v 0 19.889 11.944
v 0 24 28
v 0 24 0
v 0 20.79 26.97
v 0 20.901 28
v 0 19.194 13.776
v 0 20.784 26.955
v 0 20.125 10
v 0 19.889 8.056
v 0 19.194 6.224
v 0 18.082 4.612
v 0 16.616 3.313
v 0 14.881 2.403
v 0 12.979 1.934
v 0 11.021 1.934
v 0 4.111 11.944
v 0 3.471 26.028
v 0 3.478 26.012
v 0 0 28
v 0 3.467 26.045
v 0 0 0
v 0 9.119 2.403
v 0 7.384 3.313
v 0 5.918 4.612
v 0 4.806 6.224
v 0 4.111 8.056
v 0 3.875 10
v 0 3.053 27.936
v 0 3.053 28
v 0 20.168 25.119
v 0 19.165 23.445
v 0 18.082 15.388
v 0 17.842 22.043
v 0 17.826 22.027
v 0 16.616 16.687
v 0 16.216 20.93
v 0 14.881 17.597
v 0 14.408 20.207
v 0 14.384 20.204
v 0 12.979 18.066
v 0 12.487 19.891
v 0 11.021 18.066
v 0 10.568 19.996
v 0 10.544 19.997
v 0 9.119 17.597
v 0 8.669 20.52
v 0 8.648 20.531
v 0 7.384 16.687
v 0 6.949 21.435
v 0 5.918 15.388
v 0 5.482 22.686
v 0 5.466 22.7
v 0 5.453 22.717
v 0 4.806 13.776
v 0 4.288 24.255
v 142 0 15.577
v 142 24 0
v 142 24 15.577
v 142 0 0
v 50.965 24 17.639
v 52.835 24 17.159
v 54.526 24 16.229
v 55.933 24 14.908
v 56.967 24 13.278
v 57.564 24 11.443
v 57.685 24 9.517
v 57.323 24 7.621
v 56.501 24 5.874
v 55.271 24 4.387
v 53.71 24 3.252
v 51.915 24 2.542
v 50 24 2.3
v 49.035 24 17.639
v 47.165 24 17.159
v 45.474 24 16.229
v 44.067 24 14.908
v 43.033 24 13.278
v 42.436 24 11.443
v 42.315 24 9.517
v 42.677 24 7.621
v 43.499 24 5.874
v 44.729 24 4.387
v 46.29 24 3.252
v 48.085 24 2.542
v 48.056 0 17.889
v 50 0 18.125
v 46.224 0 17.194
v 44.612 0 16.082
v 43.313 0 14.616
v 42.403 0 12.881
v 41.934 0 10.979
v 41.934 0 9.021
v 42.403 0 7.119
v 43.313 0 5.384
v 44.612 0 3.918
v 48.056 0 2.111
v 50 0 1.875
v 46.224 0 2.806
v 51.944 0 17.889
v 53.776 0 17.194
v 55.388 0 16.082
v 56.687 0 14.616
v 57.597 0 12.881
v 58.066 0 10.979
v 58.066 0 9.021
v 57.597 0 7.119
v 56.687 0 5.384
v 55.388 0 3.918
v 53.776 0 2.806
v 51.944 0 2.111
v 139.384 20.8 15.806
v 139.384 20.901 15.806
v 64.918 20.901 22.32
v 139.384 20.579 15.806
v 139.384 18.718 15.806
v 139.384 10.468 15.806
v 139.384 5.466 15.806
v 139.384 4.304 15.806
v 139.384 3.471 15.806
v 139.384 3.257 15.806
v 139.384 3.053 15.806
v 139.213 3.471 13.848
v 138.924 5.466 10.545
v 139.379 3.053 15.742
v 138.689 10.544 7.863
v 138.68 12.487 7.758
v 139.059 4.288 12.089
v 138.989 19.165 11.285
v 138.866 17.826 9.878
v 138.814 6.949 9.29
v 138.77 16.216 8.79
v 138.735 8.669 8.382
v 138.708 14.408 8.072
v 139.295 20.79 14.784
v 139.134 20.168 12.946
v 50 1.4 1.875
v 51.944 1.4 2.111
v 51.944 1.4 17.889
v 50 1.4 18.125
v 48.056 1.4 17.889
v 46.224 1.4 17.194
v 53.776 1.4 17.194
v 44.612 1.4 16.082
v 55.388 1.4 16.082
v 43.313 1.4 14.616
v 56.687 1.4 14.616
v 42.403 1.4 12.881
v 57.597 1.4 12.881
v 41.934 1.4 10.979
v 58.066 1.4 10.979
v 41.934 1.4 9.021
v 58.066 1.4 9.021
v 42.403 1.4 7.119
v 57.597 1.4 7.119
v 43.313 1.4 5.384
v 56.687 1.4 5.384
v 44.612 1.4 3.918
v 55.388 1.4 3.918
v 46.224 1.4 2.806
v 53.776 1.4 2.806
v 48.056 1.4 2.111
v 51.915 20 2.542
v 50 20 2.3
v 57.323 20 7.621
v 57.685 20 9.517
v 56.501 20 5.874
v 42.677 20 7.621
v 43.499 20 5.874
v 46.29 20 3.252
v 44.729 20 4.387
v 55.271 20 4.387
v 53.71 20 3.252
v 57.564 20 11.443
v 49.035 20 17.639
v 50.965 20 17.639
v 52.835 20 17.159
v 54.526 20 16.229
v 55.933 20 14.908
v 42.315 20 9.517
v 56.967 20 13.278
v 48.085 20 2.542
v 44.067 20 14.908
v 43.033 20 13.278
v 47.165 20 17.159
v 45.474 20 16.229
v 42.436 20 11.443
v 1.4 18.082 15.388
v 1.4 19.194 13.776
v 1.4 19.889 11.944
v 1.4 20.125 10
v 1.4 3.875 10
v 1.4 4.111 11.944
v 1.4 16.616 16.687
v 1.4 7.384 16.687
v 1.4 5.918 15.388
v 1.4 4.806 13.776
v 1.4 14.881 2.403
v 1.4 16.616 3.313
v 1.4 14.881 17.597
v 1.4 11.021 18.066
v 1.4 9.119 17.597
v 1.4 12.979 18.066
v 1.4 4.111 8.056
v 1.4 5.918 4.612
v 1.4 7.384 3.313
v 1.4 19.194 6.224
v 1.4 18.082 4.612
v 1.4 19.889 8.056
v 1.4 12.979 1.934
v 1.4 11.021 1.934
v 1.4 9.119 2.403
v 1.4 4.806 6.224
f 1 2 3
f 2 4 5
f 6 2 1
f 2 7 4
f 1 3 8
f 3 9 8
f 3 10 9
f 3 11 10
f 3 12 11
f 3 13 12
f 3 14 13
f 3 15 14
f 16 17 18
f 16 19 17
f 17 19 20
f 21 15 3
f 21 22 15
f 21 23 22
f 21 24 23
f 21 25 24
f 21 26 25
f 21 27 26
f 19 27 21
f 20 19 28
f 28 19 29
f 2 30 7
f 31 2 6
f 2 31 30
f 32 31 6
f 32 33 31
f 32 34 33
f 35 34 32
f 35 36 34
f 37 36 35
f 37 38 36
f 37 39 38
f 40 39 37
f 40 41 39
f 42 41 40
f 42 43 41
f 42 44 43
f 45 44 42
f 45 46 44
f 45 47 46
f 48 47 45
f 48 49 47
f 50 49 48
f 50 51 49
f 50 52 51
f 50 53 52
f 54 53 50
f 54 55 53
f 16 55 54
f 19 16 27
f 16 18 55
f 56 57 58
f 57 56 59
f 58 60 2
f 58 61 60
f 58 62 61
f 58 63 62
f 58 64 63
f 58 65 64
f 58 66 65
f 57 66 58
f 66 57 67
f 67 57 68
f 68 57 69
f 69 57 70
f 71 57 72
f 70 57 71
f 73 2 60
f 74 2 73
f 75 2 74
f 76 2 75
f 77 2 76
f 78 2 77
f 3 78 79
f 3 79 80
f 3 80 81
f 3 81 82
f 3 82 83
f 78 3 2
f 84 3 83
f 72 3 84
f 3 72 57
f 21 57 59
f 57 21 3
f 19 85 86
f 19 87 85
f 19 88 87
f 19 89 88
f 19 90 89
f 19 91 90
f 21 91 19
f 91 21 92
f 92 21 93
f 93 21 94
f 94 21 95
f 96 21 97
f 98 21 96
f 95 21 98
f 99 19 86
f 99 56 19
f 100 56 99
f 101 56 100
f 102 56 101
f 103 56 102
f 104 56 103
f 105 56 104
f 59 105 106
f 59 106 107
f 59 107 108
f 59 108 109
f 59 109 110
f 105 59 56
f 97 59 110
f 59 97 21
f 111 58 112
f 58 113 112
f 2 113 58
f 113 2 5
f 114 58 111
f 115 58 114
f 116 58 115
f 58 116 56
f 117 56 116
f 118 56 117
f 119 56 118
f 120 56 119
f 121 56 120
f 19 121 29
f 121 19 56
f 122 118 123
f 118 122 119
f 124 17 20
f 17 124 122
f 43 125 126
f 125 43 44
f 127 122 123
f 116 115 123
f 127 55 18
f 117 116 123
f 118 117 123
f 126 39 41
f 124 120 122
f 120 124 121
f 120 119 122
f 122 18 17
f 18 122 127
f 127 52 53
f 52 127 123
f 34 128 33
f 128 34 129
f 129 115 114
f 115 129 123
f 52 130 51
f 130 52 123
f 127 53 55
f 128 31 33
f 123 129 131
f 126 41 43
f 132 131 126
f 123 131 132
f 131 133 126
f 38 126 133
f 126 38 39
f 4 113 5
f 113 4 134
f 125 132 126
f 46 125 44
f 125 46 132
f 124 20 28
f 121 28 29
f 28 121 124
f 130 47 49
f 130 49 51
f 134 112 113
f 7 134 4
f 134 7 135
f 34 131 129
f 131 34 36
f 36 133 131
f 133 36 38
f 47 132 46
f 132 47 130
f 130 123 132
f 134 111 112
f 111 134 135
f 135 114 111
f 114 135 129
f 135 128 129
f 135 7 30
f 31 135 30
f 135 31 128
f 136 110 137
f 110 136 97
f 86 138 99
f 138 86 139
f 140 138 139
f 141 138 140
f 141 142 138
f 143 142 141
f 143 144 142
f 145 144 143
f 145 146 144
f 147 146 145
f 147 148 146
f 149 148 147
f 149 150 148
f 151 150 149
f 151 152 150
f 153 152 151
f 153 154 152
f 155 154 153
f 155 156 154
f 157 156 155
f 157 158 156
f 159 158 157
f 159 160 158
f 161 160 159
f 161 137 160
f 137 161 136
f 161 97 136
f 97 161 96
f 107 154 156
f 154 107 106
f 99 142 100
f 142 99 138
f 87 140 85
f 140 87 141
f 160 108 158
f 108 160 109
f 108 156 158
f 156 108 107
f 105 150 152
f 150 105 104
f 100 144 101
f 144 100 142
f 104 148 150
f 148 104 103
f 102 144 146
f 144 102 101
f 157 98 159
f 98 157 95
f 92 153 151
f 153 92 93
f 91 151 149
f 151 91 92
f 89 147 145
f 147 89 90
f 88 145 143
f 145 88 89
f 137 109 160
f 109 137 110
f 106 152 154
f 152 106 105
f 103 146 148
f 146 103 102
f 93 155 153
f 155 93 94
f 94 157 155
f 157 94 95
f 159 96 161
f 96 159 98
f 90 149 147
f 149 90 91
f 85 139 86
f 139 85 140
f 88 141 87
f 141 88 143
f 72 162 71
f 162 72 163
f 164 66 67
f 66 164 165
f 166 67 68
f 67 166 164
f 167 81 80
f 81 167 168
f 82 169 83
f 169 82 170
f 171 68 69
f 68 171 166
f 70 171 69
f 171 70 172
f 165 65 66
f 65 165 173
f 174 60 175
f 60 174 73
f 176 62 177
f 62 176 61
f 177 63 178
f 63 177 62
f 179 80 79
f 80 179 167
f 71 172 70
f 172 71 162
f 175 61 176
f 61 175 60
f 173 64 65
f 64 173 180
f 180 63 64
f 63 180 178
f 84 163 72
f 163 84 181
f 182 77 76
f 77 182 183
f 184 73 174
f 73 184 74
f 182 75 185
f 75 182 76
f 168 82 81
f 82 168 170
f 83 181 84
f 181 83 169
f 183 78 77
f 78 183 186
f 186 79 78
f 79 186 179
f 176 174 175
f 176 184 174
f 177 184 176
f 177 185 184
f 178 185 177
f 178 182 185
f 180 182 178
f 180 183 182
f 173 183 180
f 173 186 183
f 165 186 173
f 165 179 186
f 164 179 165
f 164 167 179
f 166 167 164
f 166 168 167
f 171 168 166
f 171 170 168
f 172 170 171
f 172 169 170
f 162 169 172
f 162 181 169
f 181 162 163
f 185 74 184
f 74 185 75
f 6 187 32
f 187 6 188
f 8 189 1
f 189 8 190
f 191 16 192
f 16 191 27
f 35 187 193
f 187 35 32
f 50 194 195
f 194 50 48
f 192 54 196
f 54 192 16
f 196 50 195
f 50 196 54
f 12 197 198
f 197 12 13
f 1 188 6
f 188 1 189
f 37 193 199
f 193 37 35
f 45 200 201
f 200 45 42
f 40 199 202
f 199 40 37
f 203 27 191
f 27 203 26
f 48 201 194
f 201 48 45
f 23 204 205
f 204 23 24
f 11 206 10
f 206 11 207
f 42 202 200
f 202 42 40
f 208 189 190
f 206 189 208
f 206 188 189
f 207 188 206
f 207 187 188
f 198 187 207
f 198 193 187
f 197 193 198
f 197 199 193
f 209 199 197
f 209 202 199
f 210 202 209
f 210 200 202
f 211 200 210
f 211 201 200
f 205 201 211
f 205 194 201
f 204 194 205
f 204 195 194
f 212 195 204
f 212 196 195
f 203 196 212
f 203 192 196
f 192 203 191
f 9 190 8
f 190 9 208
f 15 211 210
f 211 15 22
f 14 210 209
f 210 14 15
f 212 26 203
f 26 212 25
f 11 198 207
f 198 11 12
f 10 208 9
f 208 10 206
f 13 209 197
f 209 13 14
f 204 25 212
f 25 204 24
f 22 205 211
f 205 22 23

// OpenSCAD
length = 142;
diameter = 18;
wallThickness = 3;
angle = 5;
floorThickness = 10;
height = diameter + floorThickness;
echo(height);
washerDiameter = 16.25;
washerHeight = 1.4;
washerHeightOffset = 1;
magnetHeightOffset = 1;
magnetBaseInnerDiameter = 15.4;
magnetHeight = 4.0;
width = diameter + wallThickness * 2;
centerOfConnectorX = 50;
centerOfConnectorY = 10;
centerOfBackConnectorX = width/2;
echo(centerOfBackConnectorX);
echo(width);
difference(){
 cube([length, width, height]);
 translate([0, 0, height])
    rotate([0, angle, 0])
        cube([length + 1, width, height]);
    
    translate([-1, diameter/2 + wallThickness, height + 1])
        rotate([90 + angle, 0, 90])
            cylinder(length - 1, d=diameter);
    translate([centerOfConnectorX, washerHeight, centerOfConnectorY])
        rotate([90, 90, 0])
            cylinder(washerHeight, d=washerDiameter);
    translate([centerOfConnectorX, width, centerOfConnectorY])
        rotate([90, 90, 0])
            cylinder(magnetHeight, d=magnetBaseInnerDiameter);
    translate([0, centerOfBackConnectorX, centerOfConnectorY])
        rotate([90, 0, 90])
            cylinder(washerHeight, d=washerDiameter);
}
